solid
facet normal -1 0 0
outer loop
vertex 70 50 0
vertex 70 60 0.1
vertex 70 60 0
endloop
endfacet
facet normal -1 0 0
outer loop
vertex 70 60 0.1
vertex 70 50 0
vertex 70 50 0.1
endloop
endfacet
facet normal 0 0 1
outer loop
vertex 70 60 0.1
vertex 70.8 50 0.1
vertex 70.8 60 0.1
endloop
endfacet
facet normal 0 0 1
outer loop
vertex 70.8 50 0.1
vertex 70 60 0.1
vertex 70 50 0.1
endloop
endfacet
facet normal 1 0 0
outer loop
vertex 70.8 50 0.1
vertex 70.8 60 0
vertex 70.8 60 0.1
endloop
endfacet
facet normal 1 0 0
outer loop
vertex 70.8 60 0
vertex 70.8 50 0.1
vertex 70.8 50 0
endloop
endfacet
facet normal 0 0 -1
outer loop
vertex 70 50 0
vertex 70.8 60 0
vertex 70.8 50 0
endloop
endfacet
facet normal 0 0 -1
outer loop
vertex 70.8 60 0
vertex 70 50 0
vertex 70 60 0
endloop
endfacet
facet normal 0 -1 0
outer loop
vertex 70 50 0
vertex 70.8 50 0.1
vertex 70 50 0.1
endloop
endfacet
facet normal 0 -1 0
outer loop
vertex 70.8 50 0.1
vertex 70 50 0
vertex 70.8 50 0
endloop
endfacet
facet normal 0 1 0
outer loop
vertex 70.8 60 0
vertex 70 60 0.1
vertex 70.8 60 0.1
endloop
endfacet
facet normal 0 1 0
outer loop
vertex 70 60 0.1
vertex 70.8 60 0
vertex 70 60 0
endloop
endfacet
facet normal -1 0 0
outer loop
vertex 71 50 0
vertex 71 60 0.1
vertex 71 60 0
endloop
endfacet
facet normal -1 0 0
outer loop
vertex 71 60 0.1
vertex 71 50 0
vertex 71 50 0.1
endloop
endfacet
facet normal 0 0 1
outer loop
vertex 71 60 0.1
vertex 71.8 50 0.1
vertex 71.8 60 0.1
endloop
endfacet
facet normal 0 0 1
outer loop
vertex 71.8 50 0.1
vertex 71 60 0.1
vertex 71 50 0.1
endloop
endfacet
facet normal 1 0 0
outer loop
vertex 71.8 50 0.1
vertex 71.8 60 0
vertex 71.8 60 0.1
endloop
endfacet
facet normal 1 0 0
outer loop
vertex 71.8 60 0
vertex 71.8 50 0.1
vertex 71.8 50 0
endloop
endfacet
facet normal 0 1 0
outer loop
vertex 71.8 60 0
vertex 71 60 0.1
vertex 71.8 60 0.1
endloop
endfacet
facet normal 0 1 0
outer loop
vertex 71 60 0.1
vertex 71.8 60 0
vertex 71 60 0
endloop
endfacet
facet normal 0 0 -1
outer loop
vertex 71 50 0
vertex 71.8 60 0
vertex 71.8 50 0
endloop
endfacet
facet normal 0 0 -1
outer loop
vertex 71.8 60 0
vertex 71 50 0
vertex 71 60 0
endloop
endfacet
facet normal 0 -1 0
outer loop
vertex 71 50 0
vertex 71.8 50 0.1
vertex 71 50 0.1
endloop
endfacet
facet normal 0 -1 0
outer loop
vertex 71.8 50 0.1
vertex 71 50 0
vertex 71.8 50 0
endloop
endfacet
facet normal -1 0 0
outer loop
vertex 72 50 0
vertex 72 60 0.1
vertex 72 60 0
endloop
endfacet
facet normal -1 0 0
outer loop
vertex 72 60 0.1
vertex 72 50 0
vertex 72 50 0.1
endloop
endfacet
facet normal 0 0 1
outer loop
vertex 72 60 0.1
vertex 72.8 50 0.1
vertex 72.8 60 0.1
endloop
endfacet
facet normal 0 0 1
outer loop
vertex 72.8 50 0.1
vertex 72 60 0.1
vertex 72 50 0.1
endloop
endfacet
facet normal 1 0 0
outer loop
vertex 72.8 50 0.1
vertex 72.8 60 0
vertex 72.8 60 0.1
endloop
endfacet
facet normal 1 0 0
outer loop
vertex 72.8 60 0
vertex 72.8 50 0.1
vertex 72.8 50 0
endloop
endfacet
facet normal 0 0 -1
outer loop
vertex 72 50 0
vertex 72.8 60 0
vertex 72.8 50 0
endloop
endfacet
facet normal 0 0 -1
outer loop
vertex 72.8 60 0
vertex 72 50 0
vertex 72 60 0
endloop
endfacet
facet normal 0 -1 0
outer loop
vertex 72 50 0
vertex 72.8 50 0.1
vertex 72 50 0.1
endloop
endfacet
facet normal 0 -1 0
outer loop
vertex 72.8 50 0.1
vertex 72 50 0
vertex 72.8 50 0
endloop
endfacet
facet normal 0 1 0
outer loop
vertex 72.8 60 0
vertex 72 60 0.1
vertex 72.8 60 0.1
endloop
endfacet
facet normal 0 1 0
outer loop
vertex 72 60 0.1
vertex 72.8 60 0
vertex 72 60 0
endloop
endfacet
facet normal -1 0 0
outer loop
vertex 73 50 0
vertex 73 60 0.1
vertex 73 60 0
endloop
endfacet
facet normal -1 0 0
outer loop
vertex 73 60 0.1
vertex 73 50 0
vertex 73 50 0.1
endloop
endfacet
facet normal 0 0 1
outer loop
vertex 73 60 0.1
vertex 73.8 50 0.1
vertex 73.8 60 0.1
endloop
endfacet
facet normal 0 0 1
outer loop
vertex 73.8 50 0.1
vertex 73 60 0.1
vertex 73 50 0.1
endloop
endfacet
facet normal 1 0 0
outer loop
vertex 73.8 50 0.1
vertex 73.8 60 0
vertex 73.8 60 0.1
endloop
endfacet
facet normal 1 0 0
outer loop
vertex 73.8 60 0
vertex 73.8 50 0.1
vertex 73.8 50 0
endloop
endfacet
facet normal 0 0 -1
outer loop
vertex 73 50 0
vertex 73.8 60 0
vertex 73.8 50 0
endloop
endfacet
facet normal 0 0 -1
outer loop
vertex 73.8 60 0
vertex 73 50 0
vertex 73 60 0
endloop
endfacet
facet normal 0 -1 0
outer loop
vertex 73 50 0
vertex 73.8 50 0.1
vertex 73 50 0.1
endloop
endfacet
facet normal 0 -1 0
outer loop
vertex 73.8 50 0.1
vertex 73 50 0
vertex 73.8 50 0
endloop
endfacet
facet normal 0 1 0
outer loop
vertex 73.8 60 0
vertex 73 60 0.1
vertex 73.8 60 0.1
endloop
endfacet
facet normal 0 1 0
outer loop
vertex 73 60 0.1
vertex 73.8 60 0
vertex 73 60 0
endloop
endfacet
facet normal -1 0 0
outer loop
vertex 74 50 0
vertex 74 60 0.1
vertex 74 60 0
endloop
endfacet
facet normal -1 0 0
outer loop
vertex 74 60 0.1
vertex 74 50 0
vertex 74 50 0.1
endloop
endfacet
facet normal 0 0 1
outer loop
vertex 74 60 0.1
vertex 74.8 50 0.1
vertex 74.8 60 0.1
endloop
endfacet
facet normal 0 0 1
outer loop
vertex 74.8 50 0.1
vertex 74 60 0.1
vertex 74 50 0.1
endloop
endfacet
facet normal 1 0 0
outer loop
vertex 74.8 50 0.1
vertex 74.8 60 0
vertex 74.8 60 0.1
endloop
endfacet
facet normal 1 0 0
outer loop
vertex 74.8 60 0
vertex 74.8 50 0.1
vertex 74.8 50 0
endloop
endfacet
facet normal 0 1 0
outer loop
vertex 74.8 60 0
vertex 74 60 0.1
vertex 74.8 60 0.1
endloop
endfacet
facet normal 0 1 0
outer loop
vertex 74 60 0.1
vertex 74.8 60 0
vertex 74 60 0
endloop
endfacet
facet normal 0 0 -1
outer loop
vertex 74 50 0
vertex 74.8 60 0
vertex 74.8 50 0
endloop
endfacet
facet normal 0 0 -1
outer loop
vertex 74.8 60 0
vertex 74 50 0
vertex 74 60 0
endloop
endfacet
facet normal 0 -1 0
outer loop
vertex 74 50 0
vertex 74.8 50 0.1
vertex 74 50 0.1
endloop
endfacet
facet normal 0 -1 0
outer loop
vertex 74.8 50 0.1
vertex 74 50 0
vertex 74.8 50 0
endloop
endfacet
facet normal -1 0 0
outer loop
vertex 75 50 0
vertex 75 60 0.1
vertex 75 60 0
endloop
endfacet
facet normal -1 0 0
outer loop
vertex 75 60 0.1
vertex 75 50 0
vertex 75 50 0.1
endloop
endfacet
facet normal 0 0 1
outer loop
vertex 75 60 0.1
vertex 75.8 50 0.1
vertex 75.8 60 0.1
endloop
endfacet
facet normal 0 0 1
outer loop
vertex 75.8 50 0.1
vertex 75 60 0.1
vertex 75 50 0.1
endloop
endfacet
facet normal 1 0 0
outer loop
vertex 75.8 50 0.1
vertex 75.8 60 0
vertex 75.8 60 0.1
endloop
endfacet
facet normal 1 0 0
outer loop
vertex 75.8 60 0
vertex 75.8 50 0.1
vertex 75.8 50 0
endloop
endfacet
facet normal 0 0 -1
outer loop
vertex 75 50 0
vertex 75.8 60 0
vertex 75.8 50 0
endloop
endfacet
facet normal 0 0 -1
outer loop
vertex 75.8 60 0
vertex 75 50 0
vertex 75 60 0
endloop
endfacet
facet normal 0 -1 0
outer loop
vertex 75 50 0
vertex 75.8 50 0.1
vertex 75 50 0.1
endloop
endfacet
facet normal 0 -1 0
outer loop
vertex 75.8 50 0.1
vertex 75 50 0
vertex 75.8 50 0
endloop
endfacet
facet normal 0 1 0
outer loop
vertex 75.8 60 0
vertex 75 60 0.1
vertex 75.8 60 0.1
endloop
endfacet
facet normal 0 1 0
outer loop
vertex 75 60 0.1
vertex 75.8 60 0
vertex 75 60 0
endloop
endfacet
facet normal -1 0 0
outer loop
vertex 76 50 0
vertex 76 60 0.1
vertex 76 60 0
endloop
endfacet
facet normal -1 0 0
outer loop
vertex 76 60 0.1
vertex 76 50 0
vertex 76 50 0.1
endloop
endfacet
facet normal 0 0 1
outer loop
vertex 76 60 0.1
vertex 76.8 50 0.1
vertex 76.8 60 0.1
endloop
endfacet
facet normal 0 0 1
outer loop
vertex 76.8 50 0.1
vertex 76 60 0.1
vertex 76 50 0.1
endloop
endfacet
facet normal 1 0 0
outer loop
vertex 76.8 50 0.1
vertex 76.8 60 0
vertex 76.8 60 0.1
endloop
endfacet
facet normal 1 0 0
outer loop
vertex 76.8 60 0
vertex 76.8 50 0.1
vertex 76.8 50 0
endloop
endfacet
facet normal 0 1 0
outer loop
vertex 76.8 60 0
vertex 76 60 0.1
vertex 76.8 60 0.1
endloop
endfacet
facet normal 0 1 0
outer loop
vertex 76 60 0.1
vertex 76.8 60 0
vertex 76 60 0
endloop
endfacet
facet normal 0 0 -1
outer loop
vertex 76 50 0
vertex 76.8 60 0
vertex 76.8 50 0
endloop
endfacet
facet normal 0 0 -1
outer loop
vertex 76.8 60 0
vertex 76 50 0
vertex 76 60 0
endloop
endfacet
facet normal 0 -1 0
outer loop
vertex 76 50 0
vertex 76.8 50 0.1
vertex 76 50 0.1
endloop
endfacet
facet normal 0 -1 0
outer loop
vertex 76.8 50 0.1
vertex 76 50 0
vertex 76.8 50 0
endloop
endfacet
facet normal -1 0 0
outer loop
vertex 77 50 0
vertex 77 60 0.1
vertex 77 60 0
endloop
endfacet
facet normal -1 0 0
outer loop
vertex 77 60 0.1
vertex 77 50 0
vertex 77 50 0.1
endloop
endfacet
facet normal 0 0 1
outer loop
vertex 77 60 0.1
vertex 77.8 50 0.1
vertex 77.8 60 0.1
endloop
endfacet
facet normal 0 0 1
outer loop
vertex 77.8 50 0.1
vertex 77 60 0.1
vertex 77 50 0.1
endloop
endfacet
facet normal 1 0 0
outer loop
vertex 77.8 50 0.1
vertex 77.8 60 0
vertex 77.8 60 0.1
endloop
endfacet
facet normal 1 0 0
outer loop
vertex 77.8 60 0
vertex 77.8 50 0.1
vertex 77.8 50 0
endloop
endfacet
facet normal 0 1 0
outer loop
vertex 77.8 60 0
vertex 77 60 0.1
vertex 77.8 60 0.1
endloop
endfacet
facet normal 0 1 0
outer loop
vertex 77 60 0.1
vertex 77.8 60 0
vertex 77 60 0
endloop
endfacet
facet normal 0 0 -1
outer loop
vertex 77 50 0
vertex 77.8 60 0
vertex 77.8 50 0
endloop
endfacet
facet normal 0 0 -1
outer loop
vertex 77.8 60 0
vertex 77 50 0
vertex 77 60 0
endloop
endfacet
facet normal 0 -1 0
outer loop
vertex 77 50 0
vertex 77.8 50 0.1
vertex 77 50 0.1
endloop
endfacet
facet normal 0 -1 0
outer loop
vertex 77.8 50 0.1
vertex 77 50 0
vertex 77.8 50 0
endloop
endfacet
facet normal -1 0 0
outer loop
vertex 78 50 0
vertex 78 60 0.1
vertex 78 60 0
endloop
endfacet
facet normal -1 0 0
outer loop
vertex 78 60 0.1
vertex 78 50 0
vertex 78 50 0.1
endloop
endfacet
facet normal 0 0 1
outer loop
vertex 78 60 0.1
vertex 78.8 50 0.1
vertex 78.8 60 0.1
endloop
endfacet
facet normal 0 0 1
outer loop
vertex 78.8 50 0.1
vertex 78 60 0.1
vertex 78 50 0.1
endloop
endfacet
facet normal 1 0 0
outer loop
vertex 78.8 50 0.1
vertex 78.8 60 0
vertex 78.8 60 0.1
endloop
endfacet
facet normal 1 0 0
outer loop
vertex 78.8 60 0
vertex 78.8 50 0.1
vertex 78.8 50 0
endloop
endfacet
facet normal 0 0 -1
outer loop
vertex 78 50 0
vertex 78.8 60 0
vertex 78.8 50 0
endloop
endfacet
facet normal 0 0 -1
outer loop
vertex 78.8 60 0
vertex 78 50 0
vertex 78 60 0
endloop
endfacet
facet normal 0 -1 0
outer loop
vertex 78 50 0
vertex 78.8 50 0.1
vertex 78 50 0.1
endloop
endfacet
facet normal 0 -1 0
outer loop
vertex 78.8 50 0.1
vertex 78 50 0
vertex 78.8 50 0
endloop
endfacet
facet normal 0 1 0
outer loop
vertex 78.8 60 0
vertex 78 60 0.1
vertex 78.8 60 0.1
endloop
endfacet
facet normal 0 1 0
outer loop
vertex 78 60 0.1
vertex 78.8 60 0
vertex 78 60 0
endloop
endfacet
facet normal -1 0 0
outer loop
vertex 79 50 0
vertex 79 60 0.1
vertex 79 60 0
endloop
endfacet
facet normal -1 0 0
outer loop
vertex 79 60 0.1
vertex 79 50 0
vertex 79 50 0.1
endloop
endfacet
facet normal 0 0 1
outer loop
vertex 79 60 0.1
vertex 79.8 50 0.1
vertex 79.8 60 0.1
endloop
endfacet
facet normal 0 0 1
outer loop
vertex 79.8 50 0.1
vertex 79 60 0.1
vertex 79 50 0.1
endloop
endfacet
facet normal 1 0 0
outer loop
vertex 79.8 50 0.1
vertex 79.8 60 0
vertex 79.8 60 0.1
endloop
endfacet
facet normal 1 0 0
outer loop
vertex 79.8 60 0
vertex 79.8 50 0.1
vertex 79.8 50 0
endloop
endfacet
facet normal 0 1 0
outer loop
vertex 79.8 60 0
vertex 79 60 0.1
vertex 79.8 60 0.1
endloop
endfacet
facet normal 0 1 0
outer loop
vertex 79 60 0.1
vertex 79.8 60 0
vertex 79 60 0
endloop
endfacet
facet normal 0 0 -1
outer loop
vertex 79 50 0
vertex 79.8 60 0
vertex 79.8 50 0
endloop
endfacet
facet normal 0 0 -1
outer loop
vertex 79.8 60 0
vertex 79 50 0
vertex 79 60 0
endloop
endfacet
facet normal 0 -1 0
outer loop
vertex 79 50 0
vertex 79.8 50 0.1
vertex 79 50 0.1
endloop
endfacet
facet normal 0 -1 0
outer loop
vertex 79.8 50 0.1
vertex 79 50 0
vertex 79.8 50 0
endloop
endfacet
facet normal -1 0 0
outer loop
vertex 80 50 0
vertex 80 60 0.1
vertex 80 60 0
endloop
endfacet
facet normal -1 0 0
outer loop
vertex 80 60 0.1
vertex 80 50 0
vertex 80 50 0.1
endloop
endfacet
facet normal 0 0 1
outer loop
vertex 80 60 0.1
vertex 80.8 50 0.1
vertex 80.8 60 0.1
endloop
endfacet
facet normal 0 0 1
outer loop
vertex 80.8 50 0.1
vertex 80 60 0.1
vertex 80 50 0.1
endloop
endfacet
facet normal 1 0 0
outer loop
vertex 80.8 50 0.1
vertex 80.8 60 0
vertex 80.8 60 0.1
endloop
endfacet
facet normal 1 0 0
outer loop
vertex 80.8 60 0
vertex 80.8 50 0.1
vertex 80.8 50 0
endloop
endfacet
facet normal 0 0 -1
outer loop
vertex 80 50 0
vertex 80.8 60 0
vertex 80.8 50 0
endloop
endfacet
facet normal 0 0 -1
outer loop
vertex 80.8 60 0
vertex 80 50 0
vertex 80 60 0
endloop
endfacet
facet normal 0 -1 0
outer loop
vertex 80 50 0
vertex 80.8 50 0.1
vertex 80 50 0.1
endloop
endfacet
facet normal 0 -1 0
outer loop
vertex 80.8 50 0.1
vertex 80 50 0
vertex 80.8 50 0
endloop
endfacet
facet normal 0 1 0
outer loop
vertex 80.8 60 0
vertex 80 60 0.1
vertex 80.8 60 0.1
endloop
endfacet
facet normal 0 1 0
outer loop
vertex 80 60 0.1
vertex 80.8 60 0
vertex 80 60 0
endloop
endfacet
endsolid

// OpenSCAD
translate([10+60,10+40,0])
        for (i = [0 : 10]){
            translate([i,0,0])
                cube(size = [0.8,10,0.1]);
    }
